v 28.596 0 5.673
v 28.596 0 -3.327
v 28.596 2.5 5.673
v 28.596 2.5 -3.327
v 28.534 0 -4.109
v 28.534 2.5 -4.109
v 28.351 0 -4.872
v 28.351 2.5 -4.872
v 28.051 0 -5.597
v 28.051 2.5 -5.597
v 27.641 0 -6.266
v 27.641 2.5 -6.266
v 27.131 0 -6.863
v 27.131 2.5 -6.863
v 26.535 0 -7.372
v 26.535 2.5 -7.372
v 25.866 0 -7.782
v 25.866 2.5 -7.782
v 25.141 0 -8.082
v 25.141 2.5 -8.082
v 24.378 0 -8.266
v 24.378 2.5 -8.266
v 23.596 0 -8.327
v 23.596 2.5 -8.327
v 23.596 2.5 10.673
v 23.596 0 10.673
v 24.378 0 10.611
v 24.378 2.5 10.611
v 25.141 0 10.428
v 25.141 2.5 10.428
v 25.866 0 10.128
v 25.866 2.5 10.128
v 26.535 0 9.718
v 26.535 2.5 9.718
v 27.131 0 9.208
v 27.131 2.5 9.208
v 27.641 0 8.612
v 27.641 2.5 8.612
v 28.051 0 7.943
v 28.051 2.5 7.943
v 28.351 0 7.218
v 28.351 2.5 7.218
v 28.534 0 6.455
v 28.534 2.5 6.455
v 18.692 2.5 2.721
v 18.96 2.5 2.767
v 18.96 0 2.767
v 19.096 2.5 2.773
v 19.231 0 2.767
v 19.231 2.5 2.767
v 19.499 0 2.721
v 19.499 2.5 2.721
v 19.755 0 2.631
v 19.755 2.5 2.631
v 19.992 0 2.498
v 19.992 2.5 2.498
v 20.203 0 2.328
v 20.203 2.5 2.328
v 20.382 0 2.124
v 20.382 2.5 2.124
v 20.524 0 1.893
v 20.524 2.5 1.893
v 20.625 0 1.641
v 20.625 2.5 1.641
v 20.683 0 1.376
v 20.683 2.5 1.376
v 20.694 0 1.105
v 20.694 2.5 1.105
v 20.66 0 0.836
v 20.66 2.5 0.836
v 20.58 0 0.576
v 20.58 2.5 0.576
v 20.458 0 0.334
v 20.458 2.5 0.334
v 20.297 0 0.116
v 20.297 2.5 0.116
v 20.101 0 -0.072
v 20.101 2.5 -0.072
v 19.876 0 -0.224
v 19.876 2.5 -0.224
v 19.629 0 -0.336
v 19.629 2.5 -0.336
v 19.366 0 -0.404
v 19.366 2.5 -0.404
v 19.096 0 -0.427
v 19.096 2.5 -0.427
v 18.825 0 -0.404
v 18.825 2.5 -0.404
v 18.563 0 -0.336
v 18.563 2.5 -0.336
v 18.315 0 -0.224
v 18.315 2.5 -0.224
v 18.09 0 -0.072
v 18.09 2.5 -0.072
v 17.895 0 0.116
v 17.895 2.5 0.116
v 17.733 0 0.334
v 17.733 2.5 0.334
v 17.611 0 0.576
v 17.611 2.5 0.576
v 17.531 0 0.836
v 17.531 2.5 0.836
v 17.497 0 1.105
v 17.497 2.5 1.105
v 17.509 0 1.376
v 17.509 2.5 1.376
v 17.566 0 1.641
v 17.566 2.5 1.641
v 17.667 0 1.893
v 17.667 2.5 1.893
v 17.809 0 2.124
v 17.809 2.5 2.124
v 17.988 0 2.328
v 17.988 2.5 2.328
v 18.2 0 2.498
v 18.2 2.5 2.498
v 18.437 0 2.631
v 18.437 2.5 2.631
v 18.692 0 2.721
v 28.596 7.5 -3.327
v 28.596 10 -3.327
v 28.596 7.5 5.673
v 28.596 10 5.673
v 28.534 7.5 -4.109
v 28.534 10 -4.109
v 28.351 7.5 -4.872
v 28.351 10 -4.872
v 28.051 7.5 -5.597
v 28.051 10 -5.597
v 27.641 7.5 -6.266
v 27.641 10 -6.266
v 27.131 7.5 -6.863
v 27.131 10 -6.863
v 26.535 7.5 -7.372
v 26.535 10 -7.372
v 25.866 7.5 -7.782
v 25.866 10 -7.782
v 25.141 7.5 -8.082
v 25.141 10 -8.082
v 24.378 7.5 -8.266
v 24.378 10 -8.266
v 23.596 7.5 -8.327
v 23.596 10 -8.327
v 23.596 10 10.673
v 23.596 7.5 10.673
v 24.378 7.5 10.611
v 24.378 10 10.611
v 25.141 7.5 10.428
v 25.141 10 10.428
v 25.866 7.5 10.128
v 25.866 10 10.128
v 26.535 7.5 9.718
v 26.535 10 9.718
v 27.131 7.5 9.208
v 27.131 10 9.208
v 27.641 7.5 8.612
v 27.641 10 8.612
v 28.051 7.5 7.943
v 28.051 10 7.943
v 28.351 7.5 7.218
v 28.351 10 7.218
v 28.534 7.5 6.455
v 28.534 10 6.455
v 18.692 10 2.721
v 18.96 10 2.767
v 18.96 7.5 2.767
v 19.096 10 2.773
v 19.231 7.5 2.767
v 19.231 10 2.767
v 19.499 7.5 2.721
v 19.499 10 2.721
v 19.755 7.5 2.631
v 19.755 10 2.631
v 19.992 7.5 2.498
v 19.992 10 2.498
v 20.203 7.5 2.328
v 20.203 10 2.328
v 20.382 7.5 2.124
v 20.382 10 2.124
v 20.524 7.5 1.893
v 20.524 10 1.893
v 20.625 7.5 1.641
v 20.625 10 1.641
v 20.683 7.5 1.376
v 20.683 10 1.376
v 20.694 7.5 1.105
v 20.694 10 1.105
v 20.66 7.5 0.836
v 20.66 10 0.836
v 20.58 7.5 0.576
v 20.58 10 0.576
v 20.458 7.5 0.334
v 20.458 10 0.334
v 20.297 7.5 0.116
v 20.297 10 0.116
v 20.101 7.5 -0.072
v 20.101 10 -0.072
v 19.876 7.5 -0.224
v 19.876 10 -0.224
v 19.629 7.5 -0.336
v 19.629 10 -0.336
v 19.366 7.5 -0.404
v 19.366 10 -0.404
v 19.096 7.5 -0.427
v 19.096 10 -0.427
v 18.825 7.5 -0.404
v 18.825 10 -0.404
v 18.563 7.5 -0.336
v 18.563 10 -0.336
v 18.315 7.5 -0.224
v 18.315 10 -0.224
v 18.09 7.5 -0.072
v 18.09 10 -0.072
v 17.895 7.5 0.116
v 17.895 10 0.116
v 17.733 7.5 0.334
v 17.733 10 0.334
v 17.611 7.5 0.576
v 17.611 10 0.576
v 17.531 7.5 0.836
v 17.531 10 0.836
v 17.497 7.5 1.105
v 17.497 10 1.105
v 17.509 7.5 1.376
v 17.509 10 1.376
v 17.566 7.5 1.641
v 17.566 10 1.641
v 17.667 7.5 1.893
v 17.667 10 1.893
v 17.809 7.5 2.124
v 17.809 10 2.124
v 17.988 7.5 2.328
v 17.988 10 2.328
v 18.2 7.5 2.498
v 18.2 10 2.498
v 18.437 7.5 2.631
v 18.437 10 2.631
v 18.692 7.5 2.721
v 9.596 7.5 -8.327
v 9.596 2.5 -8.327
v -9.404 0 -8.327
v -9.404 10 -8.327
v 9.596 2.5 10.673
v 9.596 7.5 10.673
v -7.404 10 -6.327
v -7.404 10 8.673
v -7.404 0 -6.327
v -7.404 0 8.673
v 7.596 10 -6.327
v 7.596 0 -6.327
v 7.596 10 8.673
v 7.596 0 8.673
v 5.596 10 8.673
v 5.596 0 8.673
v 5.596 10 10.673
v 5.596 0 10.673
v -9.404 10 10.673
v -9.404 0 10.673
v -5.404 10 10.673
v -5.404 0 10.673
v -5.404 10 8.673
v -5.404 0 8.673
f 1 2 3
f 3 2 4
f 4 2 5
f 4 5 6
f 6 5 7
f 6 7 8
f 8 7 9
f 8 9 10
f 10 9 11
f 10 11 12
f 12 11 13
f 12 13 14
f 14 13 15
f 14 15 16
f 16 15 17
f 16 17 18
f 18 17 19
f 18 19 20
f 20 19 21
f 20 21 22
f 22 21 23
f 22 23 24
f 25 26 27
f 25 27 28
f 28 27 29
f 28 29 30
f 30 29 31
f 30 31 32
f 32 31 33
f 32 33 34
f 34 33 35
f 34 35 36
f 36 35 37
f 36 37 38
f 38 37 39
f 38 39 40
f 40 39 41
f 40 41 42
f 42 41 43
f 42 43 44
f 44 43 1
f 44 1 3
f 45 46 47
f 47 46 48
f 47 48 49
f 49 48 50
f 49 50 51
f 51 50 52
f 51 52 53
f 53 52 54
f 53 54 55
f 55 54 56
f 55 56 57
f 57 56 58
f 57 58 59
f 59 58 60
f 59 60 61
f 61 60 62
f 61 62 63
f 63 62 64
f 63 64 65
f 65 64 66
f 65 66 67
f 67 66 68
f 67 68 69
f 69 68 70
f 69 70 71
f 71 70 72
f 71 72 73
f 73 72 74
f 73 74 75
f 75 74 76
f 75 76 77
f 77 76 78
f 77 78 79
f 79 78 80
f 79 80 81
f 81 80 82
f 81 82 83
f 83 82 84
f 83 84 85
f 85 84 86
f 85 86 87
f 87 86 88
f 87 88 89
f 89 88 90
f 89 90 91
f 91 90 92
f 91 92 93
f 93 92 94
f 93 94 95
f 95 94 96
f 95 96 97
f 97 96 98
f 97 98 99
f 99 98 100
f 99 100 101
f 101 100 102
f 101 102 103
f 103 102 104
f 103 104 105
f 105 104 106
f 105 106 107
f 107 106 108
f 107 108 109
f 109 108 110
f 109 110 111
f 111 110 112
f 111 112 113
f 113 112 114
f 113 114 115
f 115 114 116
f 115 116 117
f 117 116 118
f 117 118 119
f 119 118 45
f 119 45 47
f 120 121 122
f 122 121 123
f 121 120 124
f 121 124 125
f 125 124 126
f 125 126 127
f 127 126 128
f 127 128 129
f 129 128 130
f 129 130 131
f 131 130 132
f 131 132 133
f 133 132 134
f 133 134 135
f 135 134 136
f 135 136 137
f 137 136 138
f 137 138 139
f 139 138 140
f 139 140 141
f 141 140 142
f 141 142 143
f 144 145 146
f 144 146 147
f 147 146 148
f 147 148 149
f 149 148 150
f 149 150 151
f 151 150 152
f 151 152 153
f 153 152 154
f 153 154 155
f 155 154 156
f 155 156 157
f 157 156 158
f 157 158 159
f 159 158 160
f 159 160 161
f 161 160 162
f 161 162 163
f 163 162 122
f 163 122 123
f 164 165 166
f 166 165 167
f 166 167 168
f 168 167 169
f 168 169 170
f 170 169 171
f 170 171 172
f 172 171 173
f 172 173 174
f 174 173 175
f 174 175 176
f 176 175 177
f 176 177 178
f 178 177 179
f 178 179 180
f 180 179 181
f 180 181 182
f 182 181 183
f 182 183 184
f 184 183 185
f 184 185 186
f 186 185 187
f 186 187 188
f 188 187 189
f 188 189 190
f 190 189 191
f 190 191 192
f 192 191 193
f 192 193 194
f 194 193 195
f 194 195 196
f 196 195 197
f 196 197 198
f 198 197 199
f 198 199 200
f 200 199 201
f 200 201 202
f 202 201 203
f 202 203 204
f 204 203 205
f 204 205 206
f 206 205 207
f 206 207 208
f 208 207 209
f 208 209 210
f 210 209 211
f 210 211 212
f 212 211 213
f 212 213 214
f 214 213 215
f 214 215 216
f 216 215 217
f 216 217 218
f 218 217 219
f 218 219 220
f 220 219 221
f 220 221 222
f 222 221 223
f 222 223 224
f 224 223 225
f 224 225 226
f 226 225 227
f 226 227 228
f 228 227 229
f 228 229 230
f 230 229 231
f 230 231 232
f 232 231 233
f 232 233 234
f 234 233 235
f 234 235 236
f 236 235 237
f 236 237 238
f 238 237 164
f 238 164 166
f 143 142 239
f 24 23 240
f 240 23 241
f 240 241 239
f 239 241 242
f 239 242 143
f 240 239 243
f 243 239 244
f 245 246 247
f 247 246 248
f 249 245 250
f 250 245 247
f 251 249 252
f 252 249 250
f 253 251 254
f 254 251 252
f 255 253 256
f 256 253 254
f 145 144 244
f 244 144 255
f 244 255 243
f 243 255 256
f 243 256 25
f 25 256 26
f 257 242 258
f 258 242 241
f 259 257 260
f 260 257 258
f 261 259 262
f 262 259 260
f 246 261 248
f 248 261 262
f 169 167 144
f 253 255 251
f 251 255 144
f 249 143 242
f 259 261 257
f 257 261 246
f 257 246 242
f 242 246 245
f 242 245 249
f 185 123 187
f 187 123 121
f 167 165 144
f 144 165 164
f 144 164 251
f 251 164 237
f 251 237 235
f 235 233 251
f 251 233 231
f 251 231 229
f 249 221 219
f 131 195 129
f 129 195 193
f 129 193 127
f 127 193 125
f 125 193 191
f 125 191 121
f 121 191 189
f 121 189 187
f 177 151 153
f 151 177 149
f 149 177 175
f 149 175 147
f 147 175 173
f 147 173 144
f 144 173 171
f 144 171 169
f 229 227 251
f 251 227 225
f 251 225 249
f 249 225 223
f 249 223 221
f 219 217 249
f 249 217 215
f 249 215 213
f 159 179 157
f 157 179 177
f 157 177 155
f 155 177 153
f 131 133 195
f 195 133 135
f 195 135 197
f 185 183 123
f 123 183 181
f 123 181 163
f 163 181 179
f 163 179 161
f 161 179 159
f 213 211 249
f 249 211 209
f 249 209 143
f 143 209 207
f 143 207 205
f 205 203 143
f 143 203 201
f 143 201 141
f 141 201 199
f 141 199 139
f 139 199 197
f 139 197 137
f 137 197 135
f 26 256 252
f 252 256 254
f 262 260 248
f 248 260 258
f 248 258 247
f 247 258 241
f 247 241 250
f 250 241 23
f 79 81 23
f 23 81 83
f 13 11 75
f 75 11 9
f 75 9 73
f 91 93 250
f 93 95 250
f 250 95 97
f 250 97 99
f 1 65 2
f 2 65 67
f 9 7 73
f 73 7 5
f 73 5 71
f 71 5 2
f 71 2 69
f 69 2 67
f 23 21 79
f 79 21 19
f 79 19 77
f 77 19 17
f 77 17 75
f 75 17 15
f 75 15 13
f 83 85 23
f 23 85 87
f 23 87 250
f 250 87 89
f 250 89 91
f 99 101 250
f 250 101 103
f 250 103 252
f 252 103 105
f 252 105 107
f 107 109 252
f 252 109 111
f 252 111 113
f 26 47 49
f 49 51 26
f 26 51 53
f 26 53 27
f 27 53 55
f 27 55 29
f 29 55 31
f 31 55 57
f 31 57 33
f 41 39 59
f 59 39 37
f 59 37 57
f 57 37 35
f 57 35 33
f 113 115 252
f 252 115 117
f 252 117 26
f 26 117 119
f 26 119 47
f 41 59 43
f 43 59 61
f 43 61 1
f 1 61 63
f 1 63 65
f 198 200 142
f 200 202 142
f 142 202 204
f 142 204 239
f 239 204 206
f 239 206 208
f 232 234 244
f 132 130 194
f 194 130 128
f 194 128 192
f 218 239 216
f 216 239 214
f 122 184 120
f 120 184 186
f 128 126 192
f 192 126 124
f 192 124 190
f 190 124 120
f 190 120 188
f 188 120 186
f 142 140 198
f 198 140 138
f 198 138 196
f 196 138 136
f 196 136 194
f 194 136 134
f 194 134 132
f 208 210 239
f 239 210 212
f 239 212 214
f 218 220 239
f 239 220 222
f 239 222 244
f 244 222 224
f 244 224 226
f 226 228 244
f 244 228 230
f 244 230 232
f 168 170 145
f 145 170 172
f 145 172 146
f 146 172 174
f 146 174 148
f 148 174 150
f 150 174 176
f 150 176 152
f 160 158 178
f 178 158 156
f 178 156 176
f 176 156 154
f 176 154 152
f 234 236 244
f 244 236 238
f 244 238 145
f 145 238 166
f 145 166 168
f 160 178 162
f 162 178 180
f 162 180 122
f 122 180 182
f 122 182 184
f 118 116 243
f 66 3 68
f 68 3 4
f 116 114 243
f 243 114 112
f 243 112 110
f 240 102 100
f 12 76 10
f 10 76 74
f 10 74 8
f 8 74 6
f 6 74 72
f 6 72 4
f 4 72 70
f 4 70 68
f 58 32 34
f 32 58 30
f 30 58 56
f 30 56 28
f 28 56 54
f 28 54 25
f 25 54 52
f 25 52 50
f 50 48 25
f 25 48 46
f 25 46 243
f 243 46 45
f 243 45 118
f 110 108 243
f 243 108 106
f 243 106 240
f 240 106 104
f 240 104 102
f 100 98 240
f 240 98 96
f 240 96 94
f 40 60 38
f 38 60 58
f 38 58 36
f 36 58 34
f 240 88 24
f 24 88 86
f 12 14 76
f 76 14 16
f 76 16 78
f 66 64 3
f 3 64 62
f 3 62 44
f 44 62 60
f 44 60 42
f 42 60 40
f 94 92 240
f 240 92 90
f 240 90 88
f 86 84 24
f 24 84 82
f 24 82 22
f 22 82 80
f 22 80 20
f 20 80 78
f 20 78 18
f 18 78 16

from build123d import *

# Parameters (mm, degrees)
EXTRUDE_3_DEPTH     = 10
SKETCH_5_W          = 19
SKETCH_5_H          = 3
EXTRUDE_5_DEPTH     = 19
SKETCH_6_R          = 1.6
CUT_EXTRUDE_4_DEPTH = 19
SKETCH_7_W          = 19
SKETCH_7_H          = 19
CUT_EXTRUDE_5_DEPTH = 0.5
SKETCH_8_W          = 19
SKETCH_8_H          = 19
CUT_EXTRUDE_7_DEPTH = 0.5


with BuildPart() as part:
    # 草图1 → 凸台-拉伸3 (new body)
    with BuildSketch(Plane(origin=(0, 0, 0), x_dir=(1, 0, 0), z_dir=(0, 1, 0))):
        Polygon((-7.404411765, -8.672794118), (-5.404411765, -8.672794118), (-5.404411765, -10.672794118), (-9.404411765, -10.672794118), (-9.404411765, 8.327205882), (9.595588235, 8.327205882), (9.595588235, -10.672794118), (5.595588235, -10.672794118), (5.595588235, -8.672794118), (7.595588235, -8.672794118), (7.595588235, 6.327205882), (-7.404411765, 6.327205882), align=None)
    extrude(amount=EXTRUDE_3_DEPTH)

    # 草图5 → 凸台-拉伸5 (add)
    with BuildSketch(Plane(origin=(9.595588235, 0, 0), x_dir=(0, 0, -1), z_dir=(1, 0, 0))):
        with Locations((-1.172794118, 8.5)):
            Rectangle(SKETCH_5_W, SKETCH_5_H)
        with Locations((-1.172794118, 1.5)):
            Rectangle(SKETCH_5_W, SKETCH_5_H)
    extrude(amount=EXTRUDE_5_DEPTH)

    # 草图6 → 切除-拉伸4 (cut)
    with BuildSketch(Plane.XZ):
        with Locations(Location((19.095588235, 1.172794118, 0), (0, 0, 270))):
            Circle(SKETCH_6_R)
        with BuildLine():
            Line((23.595588235, 10.672794118), (28.595588235, 10.672794118))
            Line((28.595588235, 10.672794118), (28.595588235, 5.672794118))
            ThreePointArc((28.595588235, 5.672794118), (27.131122141, 9.208328024), (23.595588235, 10.672794118))
        make_face()
        with BuildLine():
            Line((28.595588235, -3.327205882), (28.595588235, -8.327205882))
            Line((28.595588235, -8.327205882), (23.595588235, -8.327205882))
            ThreePointArc((23.595588235, -8.327205882), (27.131122141, -6.862739788), (28.595588235, -3.327205882))
        make_face()
    extrude(amount=-CUT_EXTRUDE_4_DEPTH, mode=Mode.SUBTRACT)

    # 草图7 → 切除-拉伸5 (cut)
    with BuildSketch(Plane.XZ.offset(-7)):
        with Locations((19.095588235, 1.172794118)):
            Rectangle(SKETCH_7_W, SKETCH_7_H)
    extrude(amount=-CUT_EXTRUDE_5_DEPTH, mode=Mode.SUBTRACT)

    # 草图8 → 切除-拉伸7 (cut)
    with BuildSketch(Plane(origin=(0, 3, 0), x_dir=(1, 0, 0), z_dir=(0, 1, 0))):
        with Locations((19.095588235, -1.172794118)):
            Rectangle(SKETCH_8_W, SKETCH_8_H)
    extrude(amount=-CUT_EXTRUDE_7_DEPTH, mode=Mode.SUBTRACT)


solid = part.part
